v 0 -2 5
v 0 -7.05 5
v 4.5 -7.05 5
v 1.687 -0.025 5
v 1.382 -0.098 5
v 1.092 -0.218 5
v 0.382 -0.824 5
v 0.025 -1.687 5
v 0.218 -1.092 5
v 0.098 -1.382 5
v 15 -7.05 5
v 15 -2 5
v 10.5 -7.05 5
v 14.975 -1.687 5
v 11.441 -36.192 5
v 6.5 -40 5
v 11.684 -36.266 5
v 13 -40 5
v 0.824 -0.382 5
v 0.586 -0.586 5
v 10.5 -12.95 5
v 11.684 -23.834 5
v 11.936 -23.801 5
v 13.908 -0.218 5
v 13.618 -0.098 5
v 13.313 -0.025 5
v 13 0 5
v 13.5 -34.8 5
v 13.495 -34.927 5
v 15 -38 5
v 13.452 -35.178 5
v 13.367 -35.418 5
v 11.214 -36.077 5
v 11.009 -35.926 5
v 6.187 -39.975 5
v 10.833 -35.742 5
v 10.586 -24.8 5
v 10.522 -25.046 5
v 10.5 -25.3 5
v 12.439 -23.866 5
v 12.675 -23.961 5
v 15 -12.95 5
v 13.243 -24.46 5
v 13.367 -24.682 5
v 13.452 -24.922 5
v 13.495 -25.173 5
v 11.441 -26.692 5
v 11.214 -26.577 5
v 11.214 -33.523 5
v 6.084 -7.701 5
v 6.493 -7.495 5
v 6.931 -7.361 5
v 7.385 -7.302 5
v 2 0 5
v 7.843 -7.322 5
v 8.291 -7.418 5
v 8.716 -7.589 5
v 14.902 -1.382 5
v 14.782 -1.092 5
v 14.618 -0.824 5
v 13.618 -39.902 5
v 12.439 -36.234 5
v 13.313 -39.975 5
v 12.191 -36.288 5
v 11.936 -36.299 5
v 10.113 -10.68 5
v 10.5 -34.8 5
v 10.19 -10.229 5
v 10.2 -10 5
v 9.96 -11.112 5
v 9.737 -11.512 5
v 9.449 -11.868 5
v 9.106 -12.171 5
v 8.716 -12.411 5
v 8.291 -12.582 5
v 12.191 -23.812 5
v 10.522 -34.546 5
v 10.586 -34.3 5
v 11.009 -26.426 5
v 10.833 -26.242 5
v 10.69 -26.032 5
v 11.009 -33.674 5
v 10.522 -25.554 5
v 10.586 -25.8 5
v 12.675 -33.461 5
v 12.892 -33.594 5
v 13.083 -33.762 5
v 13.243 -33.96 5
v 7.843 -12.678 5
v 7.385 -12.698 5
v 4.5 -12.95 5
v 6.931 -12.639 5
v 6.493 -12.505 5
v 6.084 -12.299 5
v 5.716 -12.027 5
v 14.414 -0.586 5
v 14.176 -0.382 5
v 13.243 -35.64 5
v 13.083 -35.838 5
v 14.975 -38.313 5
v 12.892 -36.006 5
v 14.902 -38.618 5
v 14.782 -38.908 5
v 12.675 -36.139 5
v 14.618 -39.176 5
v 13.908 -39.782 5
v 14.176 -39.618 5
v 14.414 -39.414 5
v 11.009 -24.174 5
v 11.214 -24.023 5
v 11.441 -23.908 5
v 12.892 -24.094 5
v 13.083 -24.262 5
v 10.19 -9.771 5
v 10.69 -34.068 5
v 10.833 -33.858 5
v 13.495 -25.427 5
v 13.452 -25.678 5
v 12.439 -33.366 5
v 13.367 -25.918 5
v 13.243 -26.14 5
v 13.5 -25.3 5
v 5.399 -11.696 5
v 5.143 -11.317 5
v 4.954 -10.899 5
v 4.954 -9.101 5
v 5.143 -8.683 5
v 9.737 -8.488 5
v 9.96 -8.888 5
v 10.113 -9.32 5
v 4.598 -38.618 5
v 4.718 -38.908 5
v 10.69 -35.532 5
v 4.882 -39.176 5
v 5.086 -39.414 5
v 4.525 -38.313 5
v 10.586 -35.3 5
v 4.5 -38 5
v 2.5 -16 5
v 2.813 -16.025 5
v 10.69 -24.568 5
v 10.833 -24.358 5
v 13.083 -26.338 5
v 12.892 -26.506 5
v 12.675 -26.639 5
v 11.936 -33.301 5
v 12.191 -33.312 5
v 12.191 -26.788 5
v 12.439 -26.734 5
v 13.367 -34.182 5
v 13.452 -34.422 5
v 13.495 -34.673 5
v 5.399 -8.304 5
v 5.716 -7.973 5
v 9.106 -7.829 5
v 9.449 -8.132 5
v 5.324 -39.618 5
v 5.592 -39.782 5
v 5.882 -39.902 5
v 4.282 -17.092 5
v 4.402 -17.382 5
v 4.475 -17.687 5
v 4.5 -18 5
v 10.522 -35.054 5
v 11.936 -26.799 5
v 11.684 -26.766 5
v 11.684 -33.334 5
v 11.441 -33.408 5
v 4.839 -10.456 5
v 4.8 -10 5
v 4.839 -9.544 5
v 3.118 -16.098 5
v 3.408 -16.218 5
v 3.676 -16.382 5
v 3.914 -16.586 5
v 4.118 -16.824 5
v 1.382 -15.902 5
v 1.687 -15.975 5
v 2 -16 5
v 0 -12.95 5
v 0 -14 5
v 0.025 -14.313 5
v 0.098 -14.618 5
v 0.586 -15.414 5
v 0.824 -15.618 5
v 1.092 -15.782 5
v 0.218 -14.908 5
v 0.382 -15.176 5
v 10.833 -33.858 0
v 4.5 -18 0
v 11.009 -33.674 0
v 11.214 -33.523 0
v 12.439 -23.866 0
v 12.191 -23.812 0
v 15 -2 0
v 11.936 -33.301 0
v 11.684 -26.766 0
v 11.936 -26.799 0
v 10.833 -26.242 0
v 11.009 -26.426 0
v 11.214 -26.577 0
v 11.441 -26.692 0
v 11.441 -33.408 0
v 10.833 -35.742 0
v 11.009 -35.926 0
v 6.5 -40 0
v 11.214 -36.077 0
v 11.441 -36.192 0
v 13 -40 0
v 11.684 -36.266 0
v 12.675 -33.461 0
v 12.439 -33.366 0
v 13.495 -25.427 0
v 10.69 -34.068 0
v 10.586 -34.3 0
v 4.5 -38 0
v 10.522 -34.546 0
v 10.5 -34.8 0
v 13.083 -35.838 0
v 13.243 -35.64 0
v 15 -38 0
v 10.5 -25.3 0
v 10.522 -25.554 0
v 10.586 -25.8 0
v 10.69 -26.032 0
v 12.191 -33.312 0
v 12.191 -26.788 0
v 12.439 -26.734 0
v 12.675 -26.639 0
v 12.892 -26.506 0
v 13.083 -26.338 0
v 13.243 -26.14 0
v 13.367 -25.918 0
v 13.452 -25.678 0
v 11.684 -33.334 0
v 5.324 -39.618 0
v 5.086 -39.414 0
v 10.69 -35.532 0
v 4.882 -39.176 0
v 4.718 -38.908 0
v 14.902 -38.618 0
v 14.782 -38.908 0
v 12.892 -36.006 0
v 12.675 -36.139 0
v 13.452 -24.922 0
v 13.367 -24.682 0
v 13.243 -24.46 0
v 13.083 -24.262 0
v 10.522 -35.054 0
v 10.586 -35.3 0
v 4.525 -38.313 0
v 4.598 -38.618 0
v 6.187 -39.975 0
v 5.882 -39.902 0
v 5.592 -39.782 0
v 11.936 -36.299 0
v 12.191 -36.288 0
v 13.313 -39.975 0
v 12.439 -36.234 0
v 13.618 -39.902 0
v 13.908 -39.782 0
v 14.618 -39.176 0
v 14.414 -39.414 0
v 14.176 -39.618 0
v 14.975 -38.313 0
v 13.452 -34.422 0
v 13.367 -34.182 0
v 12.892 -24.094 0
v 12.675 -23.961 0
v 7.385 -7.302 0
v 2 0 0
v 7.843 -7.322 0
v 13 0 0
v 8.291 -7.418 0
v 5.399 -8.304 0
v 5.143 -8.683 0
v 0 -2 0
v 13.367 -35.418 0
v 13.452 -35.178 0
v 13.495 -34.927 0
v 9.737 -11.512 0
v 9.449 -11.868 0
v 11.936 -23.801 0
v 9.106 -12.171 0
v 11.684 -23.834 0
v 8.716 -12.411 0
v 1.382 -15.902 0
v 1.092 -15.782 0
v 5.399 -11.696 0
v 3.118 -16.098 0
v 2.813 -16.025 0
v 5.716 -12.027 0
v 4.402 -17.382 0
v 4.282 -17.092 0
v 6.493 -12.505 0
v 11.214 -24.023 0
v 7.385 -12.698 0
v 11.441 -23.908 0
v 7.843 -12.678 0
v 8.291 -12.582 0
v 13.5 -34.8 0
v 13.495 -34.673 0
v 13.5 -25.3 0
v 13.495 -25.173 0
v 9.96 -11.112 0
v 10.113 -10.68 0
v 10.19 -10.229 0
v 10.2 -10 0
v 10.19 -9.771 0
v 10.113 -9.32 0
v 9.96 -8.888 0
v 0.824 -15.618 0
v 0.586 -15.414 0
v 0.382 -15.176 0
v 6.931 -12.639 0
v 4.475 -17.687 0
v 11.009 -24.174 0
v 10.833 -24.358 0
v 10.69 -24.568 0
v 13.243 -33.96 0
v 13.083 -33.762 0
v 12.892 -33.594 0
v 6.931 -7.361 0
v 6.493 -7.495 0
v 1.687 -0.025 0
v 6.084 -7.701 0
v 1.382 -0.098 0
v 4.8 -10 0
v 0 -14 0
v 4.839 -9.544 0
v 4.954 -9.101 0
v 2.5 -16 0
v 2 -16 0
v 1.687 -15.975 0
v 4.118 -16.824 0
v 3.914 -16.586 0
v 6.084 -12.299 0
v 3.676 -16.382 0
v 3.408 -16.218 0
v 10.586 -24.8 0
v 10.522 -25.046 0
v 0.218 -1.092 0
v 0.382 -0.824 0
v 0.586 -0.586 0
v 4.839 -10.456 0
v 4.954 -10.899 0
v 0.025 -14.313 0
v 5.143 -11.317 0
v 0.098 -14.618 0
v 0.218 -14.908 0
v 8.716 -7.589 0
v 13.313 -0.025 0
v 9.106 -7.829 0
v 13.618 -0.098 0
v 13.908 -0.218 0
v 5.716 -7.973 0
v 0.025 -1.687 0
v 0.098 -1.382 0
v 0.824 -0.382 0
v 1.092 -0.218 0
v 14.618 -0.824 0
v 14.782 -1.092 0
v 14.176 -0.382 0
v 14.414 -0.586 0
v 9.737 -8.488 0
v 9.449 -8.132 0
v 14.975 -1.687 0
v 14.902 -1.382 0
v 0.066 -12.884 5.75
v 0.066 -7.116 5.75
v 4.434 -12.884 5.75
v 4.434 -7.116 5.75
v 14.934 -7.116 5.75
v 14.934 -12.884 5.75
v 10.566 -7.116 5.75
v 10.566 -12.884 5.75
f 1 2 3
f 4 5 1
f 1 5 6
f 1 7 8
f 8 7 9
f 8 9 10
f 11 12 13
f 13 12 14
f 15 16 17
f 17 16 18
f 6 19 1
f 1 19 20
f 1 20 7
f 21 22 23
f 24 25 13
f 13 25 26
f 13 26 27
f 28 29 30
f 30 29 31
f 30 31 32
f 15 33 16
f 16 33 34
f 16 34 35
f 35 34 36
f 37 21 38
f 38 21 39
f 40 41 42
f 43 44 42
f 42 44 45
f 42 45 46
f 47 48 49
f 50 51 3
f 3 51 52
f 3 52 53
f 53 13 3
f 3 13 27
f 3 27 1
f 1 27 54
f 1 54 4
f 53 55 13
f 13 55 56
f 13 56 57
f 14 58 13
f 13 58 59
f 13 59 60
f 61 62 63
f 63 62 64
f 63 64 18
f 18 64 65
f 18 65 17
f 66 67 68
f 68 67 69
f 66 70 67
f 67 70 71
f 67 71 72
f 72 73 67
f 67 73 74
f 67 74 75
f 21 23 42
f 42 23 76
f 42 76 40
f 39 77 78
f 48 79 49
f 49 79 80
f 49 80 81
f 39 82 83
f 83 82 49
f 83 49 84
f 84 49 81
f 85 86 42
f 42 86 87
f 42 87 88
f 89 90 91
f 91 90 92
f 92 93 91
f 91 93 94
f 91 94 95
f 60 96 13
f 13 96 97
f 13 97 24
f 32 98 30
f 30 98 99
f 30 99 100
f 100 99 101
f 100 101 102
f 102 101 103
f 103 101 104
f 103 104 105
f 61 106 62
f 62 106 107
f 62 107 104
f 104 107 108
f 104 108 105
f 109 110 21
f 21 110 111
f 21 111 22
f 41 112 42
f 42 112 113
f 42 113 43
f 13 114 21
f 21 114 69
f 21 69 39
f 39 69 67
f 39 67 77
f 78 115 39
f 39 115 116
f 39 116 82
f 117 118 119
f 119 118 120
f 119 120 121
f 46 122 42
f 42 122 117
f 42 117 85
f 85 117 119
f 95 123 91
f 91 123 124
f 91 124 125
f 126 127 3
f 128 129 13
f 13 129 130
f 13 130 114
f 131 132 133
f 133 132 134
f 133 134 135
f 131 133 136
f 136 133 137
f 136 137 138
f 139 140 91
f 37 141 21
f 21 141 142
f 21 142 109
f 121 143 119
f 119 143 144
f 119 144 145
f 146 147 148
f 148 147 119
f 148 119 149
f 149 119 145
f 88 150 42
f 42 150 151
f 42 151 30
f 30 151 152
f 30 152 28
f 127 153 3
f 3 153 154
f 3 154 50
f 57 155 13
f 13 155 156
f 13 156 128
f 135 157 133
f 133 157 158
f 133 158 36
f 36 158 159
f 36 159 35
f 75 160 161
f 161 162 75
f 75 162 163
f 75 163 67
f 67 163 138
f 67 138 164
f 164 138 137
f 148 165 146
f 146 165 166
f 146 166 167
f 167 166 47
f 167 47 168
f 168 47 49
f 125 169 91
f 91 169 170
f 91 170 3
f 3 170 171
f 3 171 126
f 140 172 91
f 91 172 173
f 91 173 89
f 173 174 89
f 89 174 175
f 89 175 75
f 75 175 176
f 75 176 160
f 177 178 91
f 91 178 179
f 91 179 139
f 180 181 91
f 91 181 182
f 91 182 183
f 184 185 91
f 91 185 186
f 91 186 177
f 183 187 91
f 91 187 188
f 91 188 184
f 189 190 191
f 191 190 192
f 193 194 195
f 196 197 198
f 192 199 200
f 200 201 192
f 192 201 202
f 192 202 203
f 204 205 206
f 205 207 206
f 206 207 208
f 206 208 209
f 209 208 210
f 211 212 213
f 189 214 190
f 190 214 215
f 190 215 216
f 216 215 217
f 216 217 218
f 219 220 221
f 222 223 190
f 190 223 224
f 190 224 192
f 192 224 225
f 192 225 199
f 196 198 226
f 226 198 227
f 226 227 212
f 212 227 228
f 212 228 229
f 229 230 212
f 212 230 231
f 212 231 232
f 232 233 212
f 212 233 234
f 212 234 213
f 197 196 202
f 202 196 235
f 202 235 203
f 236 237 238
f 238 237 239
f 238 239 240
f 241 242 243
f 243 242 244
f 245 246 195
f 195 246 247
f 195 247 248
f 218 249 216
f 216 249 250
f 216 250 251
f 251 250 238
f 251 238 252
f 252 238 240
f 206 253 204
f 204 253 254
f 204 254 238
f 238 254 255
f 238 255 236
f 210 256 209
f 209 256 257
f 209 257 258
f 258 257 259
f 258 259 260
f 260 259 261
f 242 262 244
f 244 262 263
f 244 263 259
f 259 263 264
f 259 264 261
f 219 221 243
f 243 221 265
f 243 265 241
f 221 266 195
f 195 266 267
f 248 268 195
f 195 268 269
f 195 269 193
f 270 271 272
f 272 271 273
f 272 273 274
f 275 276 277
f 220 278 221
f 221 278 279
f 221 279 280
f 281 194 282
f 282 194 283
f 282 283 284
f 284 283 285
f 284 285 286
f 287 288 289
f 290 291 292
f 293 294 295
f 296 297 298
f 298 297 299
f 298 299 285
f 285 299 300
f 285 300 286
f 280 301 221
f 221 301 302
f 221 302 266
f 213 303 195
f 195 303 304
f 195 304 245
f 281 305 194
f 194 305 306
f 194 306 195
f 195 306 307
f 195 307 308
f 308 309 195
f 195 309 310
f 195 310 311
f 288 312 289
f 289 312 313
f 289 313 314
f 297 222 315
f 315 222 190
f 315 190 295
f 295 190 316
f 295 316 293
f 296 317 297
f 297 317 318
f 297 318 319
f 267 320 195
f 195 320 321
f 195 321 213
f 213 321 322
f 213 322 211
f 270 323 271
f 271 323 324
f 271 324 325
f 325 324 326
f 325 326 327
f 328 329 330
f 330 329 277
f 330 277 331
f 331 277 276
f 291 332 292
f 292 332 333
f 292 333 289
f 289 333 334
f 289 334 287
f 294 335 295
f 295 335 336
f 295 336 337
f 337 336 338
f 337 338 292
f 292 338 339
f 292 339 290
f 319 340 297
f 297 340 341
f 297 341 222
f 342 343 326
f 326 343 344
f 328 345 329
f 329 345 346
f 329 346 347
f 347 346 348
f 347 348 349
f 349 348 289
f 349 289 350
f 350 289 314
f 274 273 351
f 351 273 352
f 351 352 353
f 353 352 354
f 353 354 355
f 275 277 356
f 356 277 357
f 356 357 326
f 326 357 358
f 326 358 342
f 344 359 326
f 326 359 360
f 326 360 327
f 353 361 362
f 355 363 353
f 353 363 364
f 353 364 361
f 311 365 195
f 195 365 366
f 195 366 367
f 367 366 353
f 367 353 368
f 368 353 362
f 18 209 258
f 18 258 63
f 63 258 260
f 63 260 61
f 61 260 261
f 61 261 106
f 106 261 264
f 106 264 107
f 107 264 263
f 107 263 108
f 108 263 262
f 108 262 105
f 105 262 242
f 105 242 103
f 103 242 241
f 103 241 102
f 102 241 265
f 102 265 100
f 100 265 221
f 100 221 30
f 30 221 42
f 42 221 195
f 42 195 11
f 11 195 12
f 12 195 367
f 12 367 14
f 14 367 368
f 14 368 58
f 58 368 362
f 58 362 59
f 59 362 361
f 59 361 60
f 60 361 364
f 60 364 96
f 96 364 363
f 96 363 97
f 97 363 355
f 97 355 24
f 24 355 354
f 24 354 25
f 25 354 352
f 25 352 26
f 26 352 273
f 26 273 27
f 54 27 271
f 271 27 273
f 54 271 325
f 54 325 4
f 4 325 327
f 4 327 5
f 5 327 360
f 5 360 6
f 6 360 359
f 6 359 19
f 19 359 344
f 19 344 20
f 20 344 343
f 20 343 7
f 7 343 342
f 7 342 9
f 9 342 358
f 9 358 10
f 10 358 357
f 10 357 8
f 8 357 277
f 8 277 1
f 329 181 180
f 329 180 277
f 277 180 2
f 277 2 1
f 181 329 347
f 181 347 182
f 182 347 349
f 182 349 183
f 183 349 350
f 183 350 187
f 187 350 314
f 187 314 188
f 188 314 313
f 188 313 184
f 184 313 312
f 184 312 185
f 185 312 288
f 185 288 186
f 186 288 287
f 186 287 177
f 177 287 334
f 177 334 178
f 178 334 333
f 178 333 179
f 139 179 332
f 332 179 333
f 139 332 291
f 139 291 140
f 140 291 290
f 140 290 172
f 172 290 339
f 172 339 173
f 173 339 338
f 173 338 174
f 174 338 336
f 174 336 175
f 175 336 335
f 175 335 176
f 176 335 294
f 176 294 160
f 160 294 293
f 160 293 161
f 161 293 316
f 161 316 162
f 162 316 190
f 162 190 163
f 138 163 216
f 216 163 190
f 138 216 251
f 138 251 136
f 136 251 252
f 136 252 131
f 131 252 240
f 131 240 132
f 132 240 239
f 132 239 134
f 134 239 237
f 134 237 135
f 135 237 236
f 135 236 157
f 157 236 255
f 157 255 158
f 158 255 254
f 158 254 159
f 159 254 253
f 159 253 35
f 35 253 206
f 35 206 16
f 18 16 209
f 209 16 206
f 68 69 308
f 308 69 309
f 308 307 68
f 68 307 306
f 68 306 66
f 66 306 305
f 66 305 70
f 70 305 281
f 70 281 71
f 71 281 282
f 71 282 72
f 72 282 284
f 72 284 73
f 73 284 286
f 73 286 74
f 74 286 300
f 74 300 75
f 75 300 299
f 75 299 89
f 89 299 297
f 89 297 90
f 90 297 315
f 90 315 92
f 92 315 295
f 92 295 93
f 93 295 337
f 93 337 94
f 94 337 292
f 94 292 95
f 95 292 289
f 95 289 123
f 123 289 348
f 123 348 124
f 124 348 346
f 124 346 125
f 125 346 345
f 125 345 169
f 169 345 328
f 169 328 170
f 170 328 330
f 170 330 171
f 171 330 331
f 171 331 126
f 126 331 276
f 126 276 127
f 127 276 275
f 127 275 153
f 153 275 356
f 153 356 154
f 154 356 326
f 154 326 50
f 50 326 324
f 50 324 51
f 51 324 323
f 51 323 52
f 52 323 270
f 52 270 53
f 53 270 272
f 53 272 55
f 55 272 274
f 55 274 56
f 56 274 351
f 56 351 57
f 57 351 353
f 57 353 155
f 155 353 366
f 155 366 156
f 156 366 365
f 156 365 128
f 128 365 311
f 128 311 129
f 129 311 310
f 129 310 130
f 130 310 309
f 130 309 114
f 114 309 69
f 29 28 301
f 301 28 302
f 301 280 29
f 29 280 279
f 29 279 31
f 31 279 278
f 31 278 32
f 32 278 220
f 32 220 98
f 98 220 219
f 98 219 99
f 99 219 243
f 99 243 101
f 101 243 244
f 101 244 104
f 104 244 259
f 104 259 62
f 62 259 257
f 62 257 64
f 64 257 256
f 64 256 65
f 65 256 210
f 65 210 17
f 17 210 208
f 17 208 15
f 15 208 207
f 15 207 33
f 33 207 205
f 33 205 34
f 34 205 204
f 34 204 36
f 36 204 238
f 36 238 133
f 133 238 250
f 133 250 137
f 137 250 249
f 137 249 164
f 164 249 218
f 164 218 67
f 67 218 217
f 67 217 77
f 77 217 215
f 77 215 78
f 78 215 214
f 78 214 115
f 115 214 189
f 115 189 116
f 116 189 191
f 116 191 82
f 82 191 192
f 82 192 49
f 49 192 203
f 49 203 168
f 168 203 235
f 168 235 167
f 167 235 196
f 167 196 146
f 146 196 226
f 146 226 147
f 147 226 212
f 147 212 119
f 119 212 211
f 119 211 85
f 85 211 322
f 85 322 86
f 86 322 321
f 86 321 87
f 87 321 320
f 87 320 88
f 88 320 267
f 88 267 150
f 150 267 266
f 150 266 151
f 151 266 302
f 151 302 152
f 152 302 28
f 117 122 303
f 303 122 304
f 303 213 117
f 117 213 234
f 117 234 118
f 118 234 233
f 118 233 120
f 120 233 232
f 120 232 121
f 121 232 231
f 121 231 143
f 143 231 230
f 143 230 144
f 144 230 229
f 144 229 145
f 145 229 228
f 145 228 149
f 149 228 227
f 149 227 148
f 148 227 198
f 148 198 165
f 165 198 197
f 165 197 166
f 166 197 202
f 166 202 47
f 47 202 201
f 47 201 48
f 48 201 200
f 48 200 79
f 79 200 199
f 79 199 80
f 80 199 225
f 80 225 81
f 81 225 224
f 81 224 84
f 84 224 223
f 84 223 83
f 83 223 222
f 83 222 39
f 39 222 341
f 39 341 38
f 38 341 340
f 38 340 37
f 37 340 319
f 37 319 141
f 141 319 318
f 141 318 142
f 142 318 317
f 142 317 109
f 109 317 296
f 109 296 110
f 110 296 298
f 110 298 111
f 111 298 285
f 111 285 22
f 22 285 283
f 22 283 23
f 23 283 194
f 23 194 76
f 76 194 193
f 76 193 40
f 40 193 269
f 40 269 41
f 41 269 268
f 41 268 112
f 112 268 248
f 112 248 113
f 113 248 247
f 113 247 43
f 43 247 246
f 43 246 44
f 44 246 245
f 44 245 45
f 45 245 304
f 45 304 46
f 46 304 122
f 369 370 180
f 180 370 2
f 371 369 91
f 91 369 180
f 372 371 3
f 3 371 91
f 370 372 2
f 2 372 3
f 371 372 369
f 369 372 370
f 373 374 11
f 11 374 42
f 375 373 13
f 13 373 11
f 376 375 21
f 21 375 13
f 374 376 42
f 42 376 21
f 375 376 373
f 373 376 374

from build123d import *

# Parameters (mm, degrees)
SKETCH1_R           = 2.7
SKETCH1_R_2         = 1.5
BOSS_EXTRUDE1_DEPTH = 5
SKETCH2_W           = 4.5
SKETCH2_H           = 5.9
BOSS_EXTRUDE2_DEPTH = 0.75
BOSS_EXTRUDE2_TAPER = 5


with BuildPart() as part:
    # Sketch1 → Boss-Extrude1 (new body)
    with BuildSketch(Plane.XY):
        with BuildLine():
            Line((0, -2), (0, -14))
            ThreePointArc((0, -14), (0.585786438, -15.414213562), (2, -16))
            Line((2, -16), (2.5, -16))
            ThreePointArc((2.5, -16), (3.914213562, -16.585786438), (4.5, -18))
            Line((4.5, -18), (4.5, -38))
            ThreePointArc((4.5, -38), (5.085786438, -39.414213562), (6.5, -40))
            Line((6.5, -40), (13, -40))
            ThreePointArc((13, -40), (14.414213562, -39.414213562), (15, -38))
            Line((15, -38), (15, -2))
            ThreePointArc((15, -2), (14.414213562, -0.585786438), (13, 0))
            Line((13, 0), (2, 0))
            ThreePointArc((2, 0), (0.585786438, -0.585786438), (0, -2))
        make_face()
        with Locations((7.5, -10)):
            Circle(SKETCH1_R, mode=Mode.SUBTRACT)
        with Locations((12, -34.8)):
            Circle(SKETCH1_R_2, mode=Mode.SUBTRACT)
        with Locations((12, -25.3)):
            Circle(SKETCH1_R_2, mode=Mode.SUBTRACT)
    extrude(amount=BOSS_EXTRUDE1_DEPTH)

    # Sketch2 → Boss-Extrude2 (add)
    with BuildSketch(Plane.XY.offset(5)):
        with Locations((2.25, -10)):
            Rectangle(SKETCH2_W, SKETCH2_H)
        with Locations((12.75, -10)):
            Rectangle(SKETCH2_W, SKETCH2_H)
    extrude(amount=BOSS_EXTRUDE2_DEPTH, taper=BOSS_EXTRUDE2_TAPER)


solid = part.part
